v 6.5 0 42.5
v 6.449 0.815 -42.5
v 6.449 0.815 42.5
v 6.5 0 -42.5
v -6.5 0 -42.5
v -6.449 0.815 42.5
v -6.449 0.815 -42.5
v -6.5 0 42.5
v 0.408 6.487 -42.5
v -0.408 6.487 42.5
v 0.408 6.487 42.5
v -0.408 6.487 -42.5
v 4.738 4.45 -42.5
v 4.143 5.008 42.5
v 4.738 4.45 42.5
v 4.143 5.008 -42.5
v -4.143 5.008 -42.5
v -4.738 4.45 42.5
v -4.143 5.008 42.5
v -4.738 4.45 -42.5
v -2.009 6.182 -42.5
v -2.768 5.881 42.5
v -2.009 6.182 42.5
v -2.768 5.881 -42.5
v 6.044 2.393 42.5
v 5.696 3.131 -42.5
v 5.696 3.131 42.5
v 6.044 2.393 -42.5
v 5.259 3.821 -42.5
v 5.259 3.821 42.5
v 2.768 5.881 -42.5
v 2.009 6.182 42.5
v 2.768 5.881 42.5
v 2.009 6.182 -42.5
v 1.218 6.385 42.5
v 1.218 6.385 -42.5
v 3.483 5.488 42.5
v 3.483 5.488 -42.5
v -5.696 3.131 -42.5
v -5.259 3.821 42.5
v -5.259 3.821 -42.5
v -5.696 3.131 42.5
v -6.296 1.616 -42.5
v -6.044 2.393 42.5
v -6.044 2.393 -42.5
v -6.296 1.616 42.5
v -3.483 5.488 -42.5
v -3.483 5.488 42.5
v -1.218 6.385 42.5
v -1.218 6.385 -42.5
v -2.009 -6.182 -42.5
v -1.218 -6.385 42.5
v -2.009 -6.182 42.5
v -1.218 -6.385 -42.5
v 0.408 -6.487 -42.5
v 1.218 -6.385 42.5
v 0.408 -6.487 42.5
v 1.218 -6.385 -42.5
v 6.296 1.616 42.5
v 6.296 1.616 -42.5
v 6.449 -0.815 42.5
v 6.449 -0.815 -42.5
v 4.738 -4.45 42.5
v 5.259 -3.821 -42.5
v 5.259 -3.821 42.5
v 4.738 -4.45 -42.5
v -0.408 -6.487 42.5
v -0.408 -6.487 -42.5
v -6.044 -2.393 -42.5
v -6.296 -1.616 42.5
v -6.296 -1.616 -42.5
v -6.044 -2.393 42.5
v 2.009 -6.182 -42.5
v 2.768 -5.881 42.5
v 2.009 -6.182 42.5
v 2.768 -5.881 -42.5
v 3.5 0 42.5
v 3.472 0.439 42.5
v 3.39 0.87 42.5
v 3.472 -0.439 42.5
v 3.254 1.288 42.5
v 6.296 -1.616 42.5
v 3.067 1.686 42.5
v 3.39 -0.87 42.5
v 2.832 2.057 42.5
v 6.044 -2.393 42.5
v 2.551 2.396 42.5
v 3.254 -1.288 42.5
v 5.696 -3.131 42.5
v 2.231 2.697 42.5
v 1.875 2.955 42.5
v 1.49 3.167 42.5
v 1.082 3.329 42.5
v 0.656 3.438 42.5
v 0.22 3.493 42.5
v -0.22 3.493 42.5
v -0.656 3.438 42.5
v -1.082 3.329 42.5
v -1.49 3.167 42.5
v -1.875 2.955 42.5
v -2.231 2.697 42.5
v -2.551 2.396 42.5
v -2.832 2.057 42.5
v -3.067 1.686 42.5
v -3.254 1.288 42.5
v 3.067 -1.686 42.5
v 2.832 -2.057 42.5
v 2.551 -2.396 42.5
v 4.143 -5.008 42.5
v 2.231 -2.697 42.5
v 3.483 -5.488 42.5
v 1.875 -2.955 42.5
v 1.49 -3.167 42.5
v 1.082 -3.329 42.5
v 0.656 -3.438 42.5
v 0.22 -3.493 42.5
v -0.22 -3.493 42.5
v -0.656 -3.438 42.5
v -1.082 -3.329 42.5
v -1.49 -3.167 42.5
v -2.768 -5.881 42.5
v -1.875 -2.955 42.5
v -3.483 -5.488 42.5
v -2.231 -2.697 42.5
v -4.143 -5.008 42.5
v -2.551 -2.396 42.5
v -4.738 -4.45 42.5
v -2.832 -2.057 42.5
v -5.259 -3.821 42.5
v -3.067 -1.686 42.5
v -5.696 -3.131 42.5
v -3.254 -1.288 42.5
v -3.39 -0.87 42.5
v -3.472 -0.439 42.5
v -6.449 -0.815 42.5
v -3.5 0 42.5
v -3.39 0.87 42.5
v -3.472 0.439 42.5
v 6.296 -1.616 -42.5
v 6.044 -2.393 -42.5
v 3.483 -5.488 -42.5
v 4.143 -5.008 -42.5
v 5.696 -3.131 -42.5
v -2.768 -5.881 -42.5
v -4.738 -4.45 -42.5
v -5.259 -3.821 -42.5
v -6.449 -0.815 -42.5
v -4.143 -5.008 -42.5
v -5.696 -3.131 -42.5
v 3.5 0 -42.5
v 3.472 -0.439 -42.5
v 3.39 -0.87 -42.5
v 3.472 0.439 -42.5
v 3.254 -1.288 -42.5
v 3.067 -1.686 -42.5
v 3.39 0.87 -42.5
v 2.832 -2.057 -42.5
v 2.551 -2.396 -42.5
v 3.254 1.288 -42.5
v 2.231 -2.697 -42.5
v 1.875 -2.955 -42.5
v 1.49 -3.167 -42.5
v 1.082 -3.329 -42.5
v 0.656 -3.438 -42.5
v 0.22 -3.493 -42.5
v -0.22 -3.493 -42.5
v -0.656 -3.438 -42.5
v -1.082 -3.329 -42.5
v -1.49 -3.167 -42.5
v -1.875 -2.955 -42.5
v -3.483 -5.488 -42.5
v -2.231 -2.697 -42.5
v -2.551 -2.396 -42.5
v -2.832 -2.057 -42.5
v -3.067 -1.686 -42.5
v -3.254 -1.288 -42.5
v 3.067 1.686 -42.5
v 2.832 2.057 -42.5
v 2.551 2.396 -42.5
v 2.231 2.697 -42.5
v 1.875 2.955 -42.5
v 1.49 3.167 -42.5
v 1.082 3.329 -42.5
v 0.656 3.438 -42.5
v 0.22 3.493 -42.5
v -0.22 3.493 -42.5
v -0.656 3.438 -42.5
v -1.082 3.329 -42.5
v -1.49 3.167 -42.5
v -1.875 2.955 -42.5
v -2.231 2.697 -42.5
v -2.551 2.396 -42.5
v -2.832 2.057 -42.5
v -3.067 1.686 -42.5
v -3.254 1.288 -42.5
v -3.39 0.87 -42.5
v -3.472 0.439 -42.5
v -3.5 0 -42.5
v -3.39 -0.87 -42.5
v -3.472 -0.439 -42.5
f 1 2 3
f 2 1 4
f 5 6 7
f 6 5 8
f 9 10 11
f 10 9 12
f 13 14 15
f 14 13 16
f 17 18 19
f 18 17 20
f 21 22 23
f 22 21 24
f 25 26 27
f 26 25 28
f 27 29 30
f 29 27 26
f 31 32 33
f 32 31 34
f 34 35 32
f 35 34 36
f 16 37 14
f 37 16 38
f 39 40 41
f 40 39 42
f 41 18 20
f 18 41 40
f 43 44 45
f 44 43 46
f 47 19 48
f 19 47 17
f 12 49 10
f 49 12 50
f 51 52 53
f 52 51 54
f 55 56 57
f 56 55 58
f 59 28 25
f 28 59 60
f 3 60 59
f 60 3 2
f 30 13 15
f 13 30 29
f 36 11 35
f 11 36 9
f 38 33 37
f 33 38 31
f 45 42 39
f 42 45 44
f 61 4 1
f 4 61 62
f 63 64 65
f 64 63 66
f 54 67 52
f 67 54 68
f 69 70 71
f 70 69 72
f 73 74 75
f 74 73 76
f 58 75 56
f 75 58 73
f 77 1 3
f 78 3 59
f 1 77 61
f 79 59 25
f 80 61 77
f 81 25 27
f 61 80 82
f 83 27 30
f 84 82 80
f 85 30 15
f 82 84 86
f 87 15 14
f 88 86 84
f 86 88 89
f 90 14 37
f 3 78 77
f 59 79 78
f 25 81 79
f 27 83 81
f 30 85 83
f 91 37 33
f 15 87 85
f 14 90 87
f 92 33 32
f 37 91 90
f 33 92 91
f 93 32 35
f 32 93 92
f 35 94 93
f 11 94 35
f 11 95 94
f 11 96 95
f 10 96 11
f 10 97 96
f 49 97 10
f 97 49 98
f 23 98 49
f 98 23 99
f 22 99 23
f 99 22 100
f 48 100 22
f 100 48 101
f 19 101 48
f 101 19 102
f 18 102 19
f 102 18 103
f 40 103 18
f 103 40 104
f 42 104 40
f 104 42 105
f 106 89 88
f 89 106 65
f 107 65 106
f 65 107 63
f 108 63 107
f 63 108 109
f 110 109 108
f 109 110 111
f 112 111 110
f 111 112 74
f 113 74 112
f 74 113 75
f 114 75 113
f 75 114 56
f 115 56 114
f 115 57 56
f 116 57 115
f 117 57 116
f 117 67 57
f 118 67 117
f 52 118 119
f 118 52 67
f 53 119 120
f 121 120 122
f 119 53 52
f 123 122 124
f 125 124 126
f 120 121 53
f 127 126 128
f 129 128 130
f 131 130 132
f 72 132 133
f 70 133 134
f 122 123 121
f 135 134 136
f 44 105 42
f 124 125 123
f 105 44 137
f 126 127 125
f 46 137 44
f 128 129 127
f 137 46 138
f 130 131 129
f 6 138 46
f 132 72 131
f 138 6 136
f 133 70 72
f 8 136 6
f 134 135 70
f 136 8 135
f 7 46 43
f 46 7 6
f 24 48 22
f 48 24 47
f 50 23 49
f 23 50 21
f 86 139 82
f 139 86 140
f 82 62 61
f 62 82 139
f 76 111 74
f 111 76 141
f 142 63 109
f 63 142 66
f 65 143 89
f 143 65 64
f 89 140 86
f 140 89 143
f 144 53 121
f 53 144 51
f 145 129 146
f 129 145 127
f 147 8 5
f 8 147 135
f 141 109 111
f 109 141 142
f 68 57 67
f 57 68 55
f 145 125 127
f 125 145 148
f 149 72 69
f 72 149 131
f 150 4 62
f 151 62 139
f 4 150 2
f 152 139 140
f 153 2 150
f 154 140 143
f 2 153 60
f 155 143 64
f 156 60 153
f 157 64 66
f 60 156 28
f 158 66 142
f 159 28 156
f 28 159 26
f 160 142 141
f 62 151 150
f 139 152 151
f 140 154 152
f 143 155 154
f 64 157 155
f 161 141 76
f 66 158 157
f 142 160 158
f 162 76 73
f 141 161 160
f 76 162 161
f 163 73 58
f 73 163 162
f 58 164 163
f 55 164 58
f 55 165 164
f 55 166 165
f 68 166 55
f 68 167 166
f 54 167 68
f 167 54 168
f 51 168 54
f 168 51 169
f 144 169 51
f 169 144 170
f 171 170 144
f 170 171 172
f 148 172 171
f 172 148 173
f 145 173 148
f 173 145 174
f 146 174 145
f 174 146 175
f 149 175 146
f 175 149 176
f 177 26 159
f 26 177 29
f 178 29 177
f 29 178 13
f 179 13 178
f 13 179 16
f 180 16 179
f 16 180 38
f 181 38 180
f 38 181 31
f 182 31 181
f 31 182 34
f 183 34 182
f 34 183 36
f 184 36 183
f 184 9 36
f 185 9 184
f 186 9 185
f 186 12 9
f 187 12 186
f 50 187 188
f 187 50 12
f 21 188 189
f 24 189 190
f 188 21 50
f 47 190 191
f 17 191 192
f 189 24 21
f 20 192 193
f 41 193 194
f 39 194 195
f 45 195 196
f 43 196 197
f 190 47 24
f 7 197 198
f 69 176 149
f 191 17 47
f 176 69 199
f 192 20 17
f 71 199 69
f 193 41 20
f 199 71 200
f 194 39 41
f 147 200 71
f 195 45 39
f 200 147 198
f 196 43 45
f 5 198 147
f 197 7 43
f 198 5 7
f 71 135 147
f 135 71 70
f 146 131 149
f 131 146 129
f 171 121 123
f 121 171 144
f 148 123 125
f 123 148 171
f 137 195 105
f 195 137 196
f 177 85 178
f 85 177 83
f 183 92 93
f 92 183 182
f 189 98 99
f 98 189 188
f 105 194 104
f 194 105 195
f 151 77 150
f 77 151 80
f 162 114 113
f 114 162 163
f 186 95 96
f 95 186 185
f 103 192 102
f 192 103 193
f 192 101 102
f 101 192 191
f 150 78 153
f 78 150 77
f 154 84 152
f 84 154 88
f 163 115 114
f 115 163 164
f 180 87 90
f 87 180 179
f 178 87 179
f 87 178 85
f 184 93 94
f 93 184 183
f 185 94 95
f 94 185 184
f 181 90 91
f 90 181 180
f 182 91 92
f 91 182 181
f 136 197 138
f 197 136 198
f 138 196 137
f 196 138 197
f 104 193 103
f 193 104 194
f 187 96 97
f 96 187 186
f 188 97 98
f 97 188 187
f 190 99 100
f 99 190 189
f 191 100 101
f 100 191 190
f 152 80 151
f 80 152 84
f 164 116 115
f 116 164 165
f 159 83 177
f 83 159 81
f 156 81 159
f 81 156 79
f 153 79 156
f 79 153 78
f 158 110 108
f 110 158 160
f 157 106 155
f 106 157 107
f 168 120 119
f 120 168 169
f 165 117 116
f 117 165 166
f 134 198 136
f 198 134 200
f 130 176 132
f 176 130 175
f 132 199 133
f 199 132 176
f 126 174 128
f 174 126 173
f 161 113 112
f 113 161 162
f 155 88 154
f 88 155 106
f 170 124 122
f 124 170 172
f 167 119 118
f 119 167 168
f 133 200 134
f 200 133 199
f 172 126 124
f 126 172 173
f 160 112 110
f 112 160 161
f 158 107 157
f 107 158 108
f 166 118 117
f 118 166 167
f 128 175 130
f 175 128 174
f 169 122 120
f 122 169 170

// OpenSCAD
$fn = 50;


difference() {
	union() {
		translate(v = [0, 0, -42.5000000000]) {
			cylinder(h = 85, r = 6.5000000000);
		}
	}
	union() {
		translate(v = [0, 0, -100.0000000000]) {
			cylinder(h = 200, r = 3.5000000000);
		}
	}
}
